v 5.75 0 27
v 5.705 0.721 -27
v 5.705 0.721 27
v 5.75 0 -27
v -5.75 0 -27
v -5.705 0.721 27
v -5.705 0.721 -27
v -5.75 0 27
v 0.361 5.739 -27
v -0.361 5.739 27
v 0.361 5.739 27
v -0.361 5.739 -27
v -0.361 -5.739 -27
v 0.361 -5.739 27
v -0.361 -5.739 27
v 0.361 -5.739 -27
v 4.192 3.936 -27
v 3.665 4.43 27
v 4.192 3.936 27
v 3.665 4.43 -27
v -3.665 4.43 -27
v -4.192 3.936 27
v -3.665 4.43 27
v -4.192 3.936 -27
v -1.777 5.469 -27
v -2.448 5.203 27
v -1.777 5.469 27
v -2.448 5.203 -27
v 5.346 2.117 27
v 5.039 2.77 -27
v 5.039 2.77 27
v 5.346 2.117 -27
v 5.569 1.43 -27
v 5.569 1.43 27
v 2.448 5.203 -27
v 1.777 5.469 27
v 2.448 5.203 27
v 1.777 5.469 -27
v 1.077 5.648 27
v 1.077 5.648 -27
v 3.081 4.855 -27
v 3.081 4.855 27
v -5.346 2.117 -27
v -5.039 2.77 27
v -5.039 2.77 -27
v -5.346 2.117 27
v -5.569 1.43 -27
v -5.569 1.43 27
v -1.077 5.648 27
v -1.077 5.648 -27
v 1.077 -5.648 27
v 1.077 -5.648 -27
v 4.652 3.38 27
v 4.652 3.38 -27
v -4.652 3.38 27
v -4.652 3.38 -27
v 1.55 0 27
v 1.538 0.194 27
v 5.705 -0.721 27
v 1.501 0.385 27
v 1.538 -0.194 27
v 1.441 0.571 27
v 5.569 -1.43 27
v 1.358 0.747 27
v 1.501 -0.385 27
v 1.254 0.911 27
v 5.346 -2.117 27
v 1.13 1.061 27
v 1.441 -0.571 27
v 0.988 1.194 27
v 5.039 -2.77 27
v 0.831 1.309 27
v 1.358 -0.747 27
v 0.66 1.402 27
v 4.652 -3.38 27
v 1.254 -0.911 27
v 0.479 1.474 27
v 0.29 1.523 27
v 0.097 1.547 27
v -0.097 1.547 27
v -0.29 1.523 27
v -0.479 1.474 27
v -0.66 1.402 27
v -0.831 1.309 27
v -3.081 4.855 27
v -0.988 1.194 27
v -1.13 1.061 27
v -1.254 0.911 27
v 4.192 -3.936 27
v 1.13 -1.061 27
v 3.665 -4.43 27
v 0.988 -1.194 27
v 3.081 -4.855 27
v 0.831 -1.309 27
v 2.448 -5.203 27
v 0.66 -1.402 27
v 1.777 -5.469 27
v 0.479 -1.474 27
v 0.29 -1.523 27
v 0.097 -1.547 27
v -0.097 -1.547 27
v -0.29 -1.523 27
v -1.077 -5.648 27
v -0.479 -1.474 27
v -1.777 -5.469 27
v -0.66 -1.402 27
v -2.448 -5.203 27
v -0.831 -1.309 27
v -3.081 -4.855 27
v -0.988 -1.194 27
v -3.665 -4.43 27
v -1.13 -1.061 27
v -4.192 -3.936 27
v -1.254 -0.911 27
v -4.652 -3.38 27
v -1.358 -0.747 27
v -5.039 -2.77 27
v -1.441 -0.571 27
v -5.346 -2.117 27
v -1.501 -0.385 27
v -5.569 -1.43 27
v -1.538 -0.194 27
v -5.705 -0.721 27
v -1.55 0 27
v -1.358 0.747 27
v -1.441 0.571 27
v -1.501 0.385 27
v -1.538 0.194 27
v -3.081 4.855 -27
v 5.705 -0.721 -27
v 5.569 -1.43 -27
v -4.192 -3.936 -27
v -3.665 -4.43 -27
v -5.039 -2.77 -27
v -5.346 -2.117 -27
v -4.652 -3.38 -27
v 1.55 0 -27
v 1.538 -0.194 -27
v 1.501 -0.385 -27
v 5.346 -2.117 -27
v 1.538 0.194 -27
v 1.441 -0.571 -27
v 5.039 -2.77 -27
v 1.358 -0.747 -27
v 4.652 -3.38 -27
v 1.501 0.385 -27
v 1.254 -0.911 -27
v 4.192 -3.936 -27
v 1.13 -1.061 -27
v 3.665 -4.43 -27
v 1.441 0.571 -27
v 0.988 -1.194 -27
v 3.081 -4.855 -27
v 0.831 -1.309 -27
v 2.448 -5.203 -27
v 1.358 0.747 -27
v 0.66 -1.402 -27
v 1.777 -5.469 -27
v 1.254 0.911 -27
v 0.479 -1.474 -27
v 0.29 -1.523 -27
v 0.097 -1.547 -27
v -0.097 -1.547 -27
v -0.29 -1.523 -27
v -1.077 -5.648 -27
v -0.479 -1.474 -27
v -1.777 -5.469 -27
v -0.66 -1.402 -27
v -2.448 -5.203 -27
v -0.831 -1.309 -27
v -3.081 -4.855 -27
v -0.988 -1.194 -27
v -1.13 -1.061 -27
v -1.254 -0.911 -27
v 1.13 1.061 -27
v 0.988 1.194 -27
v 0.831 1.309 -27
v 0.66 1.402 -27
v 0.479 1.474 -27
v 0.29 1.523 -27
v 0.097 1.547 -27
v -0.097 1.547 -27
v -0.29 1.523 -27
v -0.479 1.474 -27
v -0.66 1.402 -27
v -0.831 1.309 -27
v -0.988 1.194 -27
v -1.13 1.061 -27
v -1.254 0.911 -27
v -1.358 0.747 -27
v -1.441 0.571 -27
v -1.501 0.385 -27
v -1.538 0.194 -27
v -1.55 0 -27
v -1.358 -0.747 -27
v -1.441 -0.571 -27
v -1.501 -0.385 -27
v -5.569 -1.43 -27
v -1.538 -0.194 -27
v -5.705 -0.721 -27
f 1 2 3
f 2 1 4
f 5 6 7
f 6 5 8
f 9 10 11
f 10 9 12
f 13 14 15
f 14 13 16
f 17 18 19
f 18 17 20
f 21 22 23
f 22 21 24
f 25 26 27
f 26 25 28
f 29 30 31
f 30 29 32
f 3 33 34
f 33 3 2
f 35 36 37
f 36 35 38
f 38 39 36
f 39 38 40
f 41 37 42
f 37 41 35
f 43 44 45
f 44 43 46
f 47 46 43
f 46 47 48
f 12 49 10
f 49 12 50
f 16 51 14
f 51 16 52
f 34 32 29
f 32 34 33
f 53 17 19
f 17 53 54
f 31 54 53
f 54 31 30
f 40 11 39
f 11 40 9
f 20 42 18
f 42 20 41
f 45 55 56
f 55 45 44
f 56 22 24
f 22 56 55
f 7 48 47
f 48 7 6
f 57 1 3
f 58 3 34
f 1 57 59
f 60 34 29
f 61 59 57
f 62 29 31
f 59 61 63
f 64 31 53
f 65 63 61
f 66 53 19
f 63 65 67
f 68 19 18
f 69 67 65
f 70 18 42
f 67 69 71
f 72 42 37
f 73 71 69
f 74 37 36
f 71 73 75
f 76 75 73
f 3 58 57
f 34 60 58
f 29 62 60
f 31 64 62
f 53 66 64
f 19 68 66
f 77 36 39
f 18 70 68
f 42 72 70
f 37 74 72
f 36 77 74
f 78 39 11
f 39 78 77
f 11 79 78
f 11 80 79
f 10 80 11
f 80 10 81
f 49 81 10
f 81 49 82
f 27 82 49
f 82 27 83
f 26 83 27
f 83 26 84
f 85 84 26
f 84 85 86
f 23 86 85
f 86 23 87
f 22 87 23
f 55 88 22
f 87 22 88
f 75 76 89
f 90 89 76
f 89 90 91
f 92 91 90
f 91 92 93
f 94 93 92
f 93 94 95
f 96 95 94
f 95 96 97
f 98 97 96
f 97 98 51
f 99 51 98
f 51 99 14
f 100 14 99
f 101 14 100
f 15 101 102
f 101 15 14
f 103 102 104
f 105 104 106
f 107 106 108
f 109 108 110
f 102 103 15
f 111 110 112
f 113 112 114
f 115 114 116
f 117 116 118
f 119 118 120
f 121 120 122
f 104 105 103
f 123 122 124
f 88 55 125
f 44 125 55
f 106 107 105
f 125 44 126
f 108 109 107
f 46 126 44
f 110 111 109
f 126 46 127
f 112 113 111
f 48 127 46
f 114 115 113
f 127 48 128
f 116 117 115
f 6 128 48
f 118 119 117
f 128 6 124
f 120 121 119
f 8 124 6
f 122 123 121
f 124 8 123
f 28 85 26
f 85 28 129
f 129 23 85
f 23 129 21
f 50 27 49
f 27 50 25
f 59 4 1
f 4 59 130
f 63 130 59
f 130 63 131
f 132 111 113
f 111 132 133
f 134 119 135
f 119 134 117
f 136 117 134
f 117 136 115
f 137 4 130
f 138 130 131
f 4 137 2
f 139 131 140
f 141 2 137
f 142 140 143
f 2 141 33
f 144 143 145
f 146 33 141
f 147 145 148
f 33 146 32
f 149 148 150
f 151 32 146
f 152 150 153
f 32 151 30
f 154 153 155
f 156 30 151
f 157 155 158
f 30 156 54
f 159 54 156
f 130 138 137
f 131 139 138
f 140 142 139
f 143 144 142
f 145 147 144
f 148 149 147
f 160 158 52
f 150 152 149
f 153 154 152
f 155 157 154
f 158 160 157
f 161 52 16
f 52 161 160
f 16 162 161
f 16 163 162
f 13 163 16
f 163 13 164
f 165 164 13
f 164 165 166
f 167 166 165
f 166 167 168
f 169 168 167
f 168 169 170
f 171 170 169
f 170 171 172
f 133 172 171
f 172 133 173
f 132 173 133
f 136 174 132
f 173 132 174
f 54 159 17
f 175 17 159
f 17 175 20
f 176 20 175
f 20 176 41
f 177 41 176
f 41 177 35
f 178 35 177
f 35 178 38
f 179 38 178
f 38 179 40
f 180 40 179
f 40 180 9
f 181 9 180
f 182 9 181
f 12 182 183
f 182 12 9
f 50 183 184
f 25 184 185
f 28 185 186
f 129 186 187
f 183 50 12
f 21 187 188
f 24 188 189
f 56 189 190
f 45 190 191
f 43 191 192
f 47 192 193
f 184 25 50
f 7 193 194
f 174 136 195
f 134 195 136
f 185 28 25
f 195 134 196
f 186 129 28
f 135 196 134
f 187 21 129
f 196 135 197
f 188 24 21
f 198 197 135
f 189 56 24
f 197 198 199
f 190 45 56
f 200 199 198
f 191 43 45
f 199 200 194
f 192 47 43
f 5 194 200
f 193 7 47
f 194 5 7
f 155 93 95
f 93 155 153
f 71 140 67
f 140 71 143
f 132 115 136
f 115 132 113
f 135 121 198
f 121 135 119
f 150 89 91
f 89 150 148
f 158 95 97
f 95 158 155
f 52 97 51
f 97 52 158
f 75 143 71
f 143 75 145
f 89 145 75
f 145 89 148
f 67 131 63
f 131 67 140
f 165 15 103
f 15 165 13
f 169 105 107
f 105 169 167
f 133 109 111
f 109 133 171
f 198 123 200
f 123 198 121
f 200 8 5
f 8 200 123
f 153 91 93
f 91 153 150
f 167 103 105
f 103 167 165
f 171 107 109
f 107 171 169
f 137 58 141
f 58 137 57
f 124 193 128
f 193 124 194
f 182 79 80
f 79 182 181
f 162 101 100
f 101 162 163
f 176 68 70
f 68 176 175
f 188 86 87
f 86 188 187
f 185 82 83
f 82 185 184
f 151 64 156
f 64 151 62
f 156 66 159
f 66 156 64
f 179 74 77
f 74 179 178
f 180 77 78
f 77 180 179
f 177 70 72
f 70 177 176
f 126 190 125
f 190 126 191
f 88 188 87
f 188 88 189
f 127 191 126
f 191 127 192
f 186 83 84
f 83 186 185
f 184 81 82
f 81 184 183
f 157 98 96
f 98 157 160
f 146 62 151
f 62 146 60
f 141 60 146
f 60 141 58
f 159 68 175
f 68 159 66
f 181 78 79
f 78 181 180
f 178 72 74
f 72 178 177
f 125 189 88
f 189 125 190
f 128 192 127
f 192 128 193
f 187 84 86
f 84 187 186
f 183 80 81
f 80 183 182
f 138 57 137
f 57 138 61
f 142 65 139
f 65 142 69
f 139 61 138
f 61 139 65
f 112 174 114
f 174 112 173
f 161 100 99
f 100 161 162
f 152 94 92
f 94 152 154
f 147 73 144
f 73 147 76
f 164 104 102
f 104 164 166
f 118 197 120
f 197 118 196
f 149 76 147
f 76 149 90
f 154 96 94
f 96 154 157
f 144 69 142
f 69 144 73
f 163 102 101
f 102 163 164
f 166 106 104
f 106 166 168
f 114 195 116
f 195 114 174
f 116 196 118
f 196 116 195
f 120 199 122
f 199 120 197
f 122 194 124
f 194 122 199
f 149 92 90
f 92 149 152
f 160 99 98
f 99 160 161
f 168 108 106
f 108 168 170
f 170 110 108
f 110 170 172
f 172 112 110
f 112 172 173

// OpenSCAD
$fn = 50;


difference() {
	union() {
		translate(v = [0, 0, -27.0000000000]) {
			cylinder(h = 54, r = 5.7500000000);
		}
	}
	union() {
		translate(v = [0, 0, -100.0000000000]) {
			cylinder(h = 200, r = 1.5500000000);
		}
	}
}
